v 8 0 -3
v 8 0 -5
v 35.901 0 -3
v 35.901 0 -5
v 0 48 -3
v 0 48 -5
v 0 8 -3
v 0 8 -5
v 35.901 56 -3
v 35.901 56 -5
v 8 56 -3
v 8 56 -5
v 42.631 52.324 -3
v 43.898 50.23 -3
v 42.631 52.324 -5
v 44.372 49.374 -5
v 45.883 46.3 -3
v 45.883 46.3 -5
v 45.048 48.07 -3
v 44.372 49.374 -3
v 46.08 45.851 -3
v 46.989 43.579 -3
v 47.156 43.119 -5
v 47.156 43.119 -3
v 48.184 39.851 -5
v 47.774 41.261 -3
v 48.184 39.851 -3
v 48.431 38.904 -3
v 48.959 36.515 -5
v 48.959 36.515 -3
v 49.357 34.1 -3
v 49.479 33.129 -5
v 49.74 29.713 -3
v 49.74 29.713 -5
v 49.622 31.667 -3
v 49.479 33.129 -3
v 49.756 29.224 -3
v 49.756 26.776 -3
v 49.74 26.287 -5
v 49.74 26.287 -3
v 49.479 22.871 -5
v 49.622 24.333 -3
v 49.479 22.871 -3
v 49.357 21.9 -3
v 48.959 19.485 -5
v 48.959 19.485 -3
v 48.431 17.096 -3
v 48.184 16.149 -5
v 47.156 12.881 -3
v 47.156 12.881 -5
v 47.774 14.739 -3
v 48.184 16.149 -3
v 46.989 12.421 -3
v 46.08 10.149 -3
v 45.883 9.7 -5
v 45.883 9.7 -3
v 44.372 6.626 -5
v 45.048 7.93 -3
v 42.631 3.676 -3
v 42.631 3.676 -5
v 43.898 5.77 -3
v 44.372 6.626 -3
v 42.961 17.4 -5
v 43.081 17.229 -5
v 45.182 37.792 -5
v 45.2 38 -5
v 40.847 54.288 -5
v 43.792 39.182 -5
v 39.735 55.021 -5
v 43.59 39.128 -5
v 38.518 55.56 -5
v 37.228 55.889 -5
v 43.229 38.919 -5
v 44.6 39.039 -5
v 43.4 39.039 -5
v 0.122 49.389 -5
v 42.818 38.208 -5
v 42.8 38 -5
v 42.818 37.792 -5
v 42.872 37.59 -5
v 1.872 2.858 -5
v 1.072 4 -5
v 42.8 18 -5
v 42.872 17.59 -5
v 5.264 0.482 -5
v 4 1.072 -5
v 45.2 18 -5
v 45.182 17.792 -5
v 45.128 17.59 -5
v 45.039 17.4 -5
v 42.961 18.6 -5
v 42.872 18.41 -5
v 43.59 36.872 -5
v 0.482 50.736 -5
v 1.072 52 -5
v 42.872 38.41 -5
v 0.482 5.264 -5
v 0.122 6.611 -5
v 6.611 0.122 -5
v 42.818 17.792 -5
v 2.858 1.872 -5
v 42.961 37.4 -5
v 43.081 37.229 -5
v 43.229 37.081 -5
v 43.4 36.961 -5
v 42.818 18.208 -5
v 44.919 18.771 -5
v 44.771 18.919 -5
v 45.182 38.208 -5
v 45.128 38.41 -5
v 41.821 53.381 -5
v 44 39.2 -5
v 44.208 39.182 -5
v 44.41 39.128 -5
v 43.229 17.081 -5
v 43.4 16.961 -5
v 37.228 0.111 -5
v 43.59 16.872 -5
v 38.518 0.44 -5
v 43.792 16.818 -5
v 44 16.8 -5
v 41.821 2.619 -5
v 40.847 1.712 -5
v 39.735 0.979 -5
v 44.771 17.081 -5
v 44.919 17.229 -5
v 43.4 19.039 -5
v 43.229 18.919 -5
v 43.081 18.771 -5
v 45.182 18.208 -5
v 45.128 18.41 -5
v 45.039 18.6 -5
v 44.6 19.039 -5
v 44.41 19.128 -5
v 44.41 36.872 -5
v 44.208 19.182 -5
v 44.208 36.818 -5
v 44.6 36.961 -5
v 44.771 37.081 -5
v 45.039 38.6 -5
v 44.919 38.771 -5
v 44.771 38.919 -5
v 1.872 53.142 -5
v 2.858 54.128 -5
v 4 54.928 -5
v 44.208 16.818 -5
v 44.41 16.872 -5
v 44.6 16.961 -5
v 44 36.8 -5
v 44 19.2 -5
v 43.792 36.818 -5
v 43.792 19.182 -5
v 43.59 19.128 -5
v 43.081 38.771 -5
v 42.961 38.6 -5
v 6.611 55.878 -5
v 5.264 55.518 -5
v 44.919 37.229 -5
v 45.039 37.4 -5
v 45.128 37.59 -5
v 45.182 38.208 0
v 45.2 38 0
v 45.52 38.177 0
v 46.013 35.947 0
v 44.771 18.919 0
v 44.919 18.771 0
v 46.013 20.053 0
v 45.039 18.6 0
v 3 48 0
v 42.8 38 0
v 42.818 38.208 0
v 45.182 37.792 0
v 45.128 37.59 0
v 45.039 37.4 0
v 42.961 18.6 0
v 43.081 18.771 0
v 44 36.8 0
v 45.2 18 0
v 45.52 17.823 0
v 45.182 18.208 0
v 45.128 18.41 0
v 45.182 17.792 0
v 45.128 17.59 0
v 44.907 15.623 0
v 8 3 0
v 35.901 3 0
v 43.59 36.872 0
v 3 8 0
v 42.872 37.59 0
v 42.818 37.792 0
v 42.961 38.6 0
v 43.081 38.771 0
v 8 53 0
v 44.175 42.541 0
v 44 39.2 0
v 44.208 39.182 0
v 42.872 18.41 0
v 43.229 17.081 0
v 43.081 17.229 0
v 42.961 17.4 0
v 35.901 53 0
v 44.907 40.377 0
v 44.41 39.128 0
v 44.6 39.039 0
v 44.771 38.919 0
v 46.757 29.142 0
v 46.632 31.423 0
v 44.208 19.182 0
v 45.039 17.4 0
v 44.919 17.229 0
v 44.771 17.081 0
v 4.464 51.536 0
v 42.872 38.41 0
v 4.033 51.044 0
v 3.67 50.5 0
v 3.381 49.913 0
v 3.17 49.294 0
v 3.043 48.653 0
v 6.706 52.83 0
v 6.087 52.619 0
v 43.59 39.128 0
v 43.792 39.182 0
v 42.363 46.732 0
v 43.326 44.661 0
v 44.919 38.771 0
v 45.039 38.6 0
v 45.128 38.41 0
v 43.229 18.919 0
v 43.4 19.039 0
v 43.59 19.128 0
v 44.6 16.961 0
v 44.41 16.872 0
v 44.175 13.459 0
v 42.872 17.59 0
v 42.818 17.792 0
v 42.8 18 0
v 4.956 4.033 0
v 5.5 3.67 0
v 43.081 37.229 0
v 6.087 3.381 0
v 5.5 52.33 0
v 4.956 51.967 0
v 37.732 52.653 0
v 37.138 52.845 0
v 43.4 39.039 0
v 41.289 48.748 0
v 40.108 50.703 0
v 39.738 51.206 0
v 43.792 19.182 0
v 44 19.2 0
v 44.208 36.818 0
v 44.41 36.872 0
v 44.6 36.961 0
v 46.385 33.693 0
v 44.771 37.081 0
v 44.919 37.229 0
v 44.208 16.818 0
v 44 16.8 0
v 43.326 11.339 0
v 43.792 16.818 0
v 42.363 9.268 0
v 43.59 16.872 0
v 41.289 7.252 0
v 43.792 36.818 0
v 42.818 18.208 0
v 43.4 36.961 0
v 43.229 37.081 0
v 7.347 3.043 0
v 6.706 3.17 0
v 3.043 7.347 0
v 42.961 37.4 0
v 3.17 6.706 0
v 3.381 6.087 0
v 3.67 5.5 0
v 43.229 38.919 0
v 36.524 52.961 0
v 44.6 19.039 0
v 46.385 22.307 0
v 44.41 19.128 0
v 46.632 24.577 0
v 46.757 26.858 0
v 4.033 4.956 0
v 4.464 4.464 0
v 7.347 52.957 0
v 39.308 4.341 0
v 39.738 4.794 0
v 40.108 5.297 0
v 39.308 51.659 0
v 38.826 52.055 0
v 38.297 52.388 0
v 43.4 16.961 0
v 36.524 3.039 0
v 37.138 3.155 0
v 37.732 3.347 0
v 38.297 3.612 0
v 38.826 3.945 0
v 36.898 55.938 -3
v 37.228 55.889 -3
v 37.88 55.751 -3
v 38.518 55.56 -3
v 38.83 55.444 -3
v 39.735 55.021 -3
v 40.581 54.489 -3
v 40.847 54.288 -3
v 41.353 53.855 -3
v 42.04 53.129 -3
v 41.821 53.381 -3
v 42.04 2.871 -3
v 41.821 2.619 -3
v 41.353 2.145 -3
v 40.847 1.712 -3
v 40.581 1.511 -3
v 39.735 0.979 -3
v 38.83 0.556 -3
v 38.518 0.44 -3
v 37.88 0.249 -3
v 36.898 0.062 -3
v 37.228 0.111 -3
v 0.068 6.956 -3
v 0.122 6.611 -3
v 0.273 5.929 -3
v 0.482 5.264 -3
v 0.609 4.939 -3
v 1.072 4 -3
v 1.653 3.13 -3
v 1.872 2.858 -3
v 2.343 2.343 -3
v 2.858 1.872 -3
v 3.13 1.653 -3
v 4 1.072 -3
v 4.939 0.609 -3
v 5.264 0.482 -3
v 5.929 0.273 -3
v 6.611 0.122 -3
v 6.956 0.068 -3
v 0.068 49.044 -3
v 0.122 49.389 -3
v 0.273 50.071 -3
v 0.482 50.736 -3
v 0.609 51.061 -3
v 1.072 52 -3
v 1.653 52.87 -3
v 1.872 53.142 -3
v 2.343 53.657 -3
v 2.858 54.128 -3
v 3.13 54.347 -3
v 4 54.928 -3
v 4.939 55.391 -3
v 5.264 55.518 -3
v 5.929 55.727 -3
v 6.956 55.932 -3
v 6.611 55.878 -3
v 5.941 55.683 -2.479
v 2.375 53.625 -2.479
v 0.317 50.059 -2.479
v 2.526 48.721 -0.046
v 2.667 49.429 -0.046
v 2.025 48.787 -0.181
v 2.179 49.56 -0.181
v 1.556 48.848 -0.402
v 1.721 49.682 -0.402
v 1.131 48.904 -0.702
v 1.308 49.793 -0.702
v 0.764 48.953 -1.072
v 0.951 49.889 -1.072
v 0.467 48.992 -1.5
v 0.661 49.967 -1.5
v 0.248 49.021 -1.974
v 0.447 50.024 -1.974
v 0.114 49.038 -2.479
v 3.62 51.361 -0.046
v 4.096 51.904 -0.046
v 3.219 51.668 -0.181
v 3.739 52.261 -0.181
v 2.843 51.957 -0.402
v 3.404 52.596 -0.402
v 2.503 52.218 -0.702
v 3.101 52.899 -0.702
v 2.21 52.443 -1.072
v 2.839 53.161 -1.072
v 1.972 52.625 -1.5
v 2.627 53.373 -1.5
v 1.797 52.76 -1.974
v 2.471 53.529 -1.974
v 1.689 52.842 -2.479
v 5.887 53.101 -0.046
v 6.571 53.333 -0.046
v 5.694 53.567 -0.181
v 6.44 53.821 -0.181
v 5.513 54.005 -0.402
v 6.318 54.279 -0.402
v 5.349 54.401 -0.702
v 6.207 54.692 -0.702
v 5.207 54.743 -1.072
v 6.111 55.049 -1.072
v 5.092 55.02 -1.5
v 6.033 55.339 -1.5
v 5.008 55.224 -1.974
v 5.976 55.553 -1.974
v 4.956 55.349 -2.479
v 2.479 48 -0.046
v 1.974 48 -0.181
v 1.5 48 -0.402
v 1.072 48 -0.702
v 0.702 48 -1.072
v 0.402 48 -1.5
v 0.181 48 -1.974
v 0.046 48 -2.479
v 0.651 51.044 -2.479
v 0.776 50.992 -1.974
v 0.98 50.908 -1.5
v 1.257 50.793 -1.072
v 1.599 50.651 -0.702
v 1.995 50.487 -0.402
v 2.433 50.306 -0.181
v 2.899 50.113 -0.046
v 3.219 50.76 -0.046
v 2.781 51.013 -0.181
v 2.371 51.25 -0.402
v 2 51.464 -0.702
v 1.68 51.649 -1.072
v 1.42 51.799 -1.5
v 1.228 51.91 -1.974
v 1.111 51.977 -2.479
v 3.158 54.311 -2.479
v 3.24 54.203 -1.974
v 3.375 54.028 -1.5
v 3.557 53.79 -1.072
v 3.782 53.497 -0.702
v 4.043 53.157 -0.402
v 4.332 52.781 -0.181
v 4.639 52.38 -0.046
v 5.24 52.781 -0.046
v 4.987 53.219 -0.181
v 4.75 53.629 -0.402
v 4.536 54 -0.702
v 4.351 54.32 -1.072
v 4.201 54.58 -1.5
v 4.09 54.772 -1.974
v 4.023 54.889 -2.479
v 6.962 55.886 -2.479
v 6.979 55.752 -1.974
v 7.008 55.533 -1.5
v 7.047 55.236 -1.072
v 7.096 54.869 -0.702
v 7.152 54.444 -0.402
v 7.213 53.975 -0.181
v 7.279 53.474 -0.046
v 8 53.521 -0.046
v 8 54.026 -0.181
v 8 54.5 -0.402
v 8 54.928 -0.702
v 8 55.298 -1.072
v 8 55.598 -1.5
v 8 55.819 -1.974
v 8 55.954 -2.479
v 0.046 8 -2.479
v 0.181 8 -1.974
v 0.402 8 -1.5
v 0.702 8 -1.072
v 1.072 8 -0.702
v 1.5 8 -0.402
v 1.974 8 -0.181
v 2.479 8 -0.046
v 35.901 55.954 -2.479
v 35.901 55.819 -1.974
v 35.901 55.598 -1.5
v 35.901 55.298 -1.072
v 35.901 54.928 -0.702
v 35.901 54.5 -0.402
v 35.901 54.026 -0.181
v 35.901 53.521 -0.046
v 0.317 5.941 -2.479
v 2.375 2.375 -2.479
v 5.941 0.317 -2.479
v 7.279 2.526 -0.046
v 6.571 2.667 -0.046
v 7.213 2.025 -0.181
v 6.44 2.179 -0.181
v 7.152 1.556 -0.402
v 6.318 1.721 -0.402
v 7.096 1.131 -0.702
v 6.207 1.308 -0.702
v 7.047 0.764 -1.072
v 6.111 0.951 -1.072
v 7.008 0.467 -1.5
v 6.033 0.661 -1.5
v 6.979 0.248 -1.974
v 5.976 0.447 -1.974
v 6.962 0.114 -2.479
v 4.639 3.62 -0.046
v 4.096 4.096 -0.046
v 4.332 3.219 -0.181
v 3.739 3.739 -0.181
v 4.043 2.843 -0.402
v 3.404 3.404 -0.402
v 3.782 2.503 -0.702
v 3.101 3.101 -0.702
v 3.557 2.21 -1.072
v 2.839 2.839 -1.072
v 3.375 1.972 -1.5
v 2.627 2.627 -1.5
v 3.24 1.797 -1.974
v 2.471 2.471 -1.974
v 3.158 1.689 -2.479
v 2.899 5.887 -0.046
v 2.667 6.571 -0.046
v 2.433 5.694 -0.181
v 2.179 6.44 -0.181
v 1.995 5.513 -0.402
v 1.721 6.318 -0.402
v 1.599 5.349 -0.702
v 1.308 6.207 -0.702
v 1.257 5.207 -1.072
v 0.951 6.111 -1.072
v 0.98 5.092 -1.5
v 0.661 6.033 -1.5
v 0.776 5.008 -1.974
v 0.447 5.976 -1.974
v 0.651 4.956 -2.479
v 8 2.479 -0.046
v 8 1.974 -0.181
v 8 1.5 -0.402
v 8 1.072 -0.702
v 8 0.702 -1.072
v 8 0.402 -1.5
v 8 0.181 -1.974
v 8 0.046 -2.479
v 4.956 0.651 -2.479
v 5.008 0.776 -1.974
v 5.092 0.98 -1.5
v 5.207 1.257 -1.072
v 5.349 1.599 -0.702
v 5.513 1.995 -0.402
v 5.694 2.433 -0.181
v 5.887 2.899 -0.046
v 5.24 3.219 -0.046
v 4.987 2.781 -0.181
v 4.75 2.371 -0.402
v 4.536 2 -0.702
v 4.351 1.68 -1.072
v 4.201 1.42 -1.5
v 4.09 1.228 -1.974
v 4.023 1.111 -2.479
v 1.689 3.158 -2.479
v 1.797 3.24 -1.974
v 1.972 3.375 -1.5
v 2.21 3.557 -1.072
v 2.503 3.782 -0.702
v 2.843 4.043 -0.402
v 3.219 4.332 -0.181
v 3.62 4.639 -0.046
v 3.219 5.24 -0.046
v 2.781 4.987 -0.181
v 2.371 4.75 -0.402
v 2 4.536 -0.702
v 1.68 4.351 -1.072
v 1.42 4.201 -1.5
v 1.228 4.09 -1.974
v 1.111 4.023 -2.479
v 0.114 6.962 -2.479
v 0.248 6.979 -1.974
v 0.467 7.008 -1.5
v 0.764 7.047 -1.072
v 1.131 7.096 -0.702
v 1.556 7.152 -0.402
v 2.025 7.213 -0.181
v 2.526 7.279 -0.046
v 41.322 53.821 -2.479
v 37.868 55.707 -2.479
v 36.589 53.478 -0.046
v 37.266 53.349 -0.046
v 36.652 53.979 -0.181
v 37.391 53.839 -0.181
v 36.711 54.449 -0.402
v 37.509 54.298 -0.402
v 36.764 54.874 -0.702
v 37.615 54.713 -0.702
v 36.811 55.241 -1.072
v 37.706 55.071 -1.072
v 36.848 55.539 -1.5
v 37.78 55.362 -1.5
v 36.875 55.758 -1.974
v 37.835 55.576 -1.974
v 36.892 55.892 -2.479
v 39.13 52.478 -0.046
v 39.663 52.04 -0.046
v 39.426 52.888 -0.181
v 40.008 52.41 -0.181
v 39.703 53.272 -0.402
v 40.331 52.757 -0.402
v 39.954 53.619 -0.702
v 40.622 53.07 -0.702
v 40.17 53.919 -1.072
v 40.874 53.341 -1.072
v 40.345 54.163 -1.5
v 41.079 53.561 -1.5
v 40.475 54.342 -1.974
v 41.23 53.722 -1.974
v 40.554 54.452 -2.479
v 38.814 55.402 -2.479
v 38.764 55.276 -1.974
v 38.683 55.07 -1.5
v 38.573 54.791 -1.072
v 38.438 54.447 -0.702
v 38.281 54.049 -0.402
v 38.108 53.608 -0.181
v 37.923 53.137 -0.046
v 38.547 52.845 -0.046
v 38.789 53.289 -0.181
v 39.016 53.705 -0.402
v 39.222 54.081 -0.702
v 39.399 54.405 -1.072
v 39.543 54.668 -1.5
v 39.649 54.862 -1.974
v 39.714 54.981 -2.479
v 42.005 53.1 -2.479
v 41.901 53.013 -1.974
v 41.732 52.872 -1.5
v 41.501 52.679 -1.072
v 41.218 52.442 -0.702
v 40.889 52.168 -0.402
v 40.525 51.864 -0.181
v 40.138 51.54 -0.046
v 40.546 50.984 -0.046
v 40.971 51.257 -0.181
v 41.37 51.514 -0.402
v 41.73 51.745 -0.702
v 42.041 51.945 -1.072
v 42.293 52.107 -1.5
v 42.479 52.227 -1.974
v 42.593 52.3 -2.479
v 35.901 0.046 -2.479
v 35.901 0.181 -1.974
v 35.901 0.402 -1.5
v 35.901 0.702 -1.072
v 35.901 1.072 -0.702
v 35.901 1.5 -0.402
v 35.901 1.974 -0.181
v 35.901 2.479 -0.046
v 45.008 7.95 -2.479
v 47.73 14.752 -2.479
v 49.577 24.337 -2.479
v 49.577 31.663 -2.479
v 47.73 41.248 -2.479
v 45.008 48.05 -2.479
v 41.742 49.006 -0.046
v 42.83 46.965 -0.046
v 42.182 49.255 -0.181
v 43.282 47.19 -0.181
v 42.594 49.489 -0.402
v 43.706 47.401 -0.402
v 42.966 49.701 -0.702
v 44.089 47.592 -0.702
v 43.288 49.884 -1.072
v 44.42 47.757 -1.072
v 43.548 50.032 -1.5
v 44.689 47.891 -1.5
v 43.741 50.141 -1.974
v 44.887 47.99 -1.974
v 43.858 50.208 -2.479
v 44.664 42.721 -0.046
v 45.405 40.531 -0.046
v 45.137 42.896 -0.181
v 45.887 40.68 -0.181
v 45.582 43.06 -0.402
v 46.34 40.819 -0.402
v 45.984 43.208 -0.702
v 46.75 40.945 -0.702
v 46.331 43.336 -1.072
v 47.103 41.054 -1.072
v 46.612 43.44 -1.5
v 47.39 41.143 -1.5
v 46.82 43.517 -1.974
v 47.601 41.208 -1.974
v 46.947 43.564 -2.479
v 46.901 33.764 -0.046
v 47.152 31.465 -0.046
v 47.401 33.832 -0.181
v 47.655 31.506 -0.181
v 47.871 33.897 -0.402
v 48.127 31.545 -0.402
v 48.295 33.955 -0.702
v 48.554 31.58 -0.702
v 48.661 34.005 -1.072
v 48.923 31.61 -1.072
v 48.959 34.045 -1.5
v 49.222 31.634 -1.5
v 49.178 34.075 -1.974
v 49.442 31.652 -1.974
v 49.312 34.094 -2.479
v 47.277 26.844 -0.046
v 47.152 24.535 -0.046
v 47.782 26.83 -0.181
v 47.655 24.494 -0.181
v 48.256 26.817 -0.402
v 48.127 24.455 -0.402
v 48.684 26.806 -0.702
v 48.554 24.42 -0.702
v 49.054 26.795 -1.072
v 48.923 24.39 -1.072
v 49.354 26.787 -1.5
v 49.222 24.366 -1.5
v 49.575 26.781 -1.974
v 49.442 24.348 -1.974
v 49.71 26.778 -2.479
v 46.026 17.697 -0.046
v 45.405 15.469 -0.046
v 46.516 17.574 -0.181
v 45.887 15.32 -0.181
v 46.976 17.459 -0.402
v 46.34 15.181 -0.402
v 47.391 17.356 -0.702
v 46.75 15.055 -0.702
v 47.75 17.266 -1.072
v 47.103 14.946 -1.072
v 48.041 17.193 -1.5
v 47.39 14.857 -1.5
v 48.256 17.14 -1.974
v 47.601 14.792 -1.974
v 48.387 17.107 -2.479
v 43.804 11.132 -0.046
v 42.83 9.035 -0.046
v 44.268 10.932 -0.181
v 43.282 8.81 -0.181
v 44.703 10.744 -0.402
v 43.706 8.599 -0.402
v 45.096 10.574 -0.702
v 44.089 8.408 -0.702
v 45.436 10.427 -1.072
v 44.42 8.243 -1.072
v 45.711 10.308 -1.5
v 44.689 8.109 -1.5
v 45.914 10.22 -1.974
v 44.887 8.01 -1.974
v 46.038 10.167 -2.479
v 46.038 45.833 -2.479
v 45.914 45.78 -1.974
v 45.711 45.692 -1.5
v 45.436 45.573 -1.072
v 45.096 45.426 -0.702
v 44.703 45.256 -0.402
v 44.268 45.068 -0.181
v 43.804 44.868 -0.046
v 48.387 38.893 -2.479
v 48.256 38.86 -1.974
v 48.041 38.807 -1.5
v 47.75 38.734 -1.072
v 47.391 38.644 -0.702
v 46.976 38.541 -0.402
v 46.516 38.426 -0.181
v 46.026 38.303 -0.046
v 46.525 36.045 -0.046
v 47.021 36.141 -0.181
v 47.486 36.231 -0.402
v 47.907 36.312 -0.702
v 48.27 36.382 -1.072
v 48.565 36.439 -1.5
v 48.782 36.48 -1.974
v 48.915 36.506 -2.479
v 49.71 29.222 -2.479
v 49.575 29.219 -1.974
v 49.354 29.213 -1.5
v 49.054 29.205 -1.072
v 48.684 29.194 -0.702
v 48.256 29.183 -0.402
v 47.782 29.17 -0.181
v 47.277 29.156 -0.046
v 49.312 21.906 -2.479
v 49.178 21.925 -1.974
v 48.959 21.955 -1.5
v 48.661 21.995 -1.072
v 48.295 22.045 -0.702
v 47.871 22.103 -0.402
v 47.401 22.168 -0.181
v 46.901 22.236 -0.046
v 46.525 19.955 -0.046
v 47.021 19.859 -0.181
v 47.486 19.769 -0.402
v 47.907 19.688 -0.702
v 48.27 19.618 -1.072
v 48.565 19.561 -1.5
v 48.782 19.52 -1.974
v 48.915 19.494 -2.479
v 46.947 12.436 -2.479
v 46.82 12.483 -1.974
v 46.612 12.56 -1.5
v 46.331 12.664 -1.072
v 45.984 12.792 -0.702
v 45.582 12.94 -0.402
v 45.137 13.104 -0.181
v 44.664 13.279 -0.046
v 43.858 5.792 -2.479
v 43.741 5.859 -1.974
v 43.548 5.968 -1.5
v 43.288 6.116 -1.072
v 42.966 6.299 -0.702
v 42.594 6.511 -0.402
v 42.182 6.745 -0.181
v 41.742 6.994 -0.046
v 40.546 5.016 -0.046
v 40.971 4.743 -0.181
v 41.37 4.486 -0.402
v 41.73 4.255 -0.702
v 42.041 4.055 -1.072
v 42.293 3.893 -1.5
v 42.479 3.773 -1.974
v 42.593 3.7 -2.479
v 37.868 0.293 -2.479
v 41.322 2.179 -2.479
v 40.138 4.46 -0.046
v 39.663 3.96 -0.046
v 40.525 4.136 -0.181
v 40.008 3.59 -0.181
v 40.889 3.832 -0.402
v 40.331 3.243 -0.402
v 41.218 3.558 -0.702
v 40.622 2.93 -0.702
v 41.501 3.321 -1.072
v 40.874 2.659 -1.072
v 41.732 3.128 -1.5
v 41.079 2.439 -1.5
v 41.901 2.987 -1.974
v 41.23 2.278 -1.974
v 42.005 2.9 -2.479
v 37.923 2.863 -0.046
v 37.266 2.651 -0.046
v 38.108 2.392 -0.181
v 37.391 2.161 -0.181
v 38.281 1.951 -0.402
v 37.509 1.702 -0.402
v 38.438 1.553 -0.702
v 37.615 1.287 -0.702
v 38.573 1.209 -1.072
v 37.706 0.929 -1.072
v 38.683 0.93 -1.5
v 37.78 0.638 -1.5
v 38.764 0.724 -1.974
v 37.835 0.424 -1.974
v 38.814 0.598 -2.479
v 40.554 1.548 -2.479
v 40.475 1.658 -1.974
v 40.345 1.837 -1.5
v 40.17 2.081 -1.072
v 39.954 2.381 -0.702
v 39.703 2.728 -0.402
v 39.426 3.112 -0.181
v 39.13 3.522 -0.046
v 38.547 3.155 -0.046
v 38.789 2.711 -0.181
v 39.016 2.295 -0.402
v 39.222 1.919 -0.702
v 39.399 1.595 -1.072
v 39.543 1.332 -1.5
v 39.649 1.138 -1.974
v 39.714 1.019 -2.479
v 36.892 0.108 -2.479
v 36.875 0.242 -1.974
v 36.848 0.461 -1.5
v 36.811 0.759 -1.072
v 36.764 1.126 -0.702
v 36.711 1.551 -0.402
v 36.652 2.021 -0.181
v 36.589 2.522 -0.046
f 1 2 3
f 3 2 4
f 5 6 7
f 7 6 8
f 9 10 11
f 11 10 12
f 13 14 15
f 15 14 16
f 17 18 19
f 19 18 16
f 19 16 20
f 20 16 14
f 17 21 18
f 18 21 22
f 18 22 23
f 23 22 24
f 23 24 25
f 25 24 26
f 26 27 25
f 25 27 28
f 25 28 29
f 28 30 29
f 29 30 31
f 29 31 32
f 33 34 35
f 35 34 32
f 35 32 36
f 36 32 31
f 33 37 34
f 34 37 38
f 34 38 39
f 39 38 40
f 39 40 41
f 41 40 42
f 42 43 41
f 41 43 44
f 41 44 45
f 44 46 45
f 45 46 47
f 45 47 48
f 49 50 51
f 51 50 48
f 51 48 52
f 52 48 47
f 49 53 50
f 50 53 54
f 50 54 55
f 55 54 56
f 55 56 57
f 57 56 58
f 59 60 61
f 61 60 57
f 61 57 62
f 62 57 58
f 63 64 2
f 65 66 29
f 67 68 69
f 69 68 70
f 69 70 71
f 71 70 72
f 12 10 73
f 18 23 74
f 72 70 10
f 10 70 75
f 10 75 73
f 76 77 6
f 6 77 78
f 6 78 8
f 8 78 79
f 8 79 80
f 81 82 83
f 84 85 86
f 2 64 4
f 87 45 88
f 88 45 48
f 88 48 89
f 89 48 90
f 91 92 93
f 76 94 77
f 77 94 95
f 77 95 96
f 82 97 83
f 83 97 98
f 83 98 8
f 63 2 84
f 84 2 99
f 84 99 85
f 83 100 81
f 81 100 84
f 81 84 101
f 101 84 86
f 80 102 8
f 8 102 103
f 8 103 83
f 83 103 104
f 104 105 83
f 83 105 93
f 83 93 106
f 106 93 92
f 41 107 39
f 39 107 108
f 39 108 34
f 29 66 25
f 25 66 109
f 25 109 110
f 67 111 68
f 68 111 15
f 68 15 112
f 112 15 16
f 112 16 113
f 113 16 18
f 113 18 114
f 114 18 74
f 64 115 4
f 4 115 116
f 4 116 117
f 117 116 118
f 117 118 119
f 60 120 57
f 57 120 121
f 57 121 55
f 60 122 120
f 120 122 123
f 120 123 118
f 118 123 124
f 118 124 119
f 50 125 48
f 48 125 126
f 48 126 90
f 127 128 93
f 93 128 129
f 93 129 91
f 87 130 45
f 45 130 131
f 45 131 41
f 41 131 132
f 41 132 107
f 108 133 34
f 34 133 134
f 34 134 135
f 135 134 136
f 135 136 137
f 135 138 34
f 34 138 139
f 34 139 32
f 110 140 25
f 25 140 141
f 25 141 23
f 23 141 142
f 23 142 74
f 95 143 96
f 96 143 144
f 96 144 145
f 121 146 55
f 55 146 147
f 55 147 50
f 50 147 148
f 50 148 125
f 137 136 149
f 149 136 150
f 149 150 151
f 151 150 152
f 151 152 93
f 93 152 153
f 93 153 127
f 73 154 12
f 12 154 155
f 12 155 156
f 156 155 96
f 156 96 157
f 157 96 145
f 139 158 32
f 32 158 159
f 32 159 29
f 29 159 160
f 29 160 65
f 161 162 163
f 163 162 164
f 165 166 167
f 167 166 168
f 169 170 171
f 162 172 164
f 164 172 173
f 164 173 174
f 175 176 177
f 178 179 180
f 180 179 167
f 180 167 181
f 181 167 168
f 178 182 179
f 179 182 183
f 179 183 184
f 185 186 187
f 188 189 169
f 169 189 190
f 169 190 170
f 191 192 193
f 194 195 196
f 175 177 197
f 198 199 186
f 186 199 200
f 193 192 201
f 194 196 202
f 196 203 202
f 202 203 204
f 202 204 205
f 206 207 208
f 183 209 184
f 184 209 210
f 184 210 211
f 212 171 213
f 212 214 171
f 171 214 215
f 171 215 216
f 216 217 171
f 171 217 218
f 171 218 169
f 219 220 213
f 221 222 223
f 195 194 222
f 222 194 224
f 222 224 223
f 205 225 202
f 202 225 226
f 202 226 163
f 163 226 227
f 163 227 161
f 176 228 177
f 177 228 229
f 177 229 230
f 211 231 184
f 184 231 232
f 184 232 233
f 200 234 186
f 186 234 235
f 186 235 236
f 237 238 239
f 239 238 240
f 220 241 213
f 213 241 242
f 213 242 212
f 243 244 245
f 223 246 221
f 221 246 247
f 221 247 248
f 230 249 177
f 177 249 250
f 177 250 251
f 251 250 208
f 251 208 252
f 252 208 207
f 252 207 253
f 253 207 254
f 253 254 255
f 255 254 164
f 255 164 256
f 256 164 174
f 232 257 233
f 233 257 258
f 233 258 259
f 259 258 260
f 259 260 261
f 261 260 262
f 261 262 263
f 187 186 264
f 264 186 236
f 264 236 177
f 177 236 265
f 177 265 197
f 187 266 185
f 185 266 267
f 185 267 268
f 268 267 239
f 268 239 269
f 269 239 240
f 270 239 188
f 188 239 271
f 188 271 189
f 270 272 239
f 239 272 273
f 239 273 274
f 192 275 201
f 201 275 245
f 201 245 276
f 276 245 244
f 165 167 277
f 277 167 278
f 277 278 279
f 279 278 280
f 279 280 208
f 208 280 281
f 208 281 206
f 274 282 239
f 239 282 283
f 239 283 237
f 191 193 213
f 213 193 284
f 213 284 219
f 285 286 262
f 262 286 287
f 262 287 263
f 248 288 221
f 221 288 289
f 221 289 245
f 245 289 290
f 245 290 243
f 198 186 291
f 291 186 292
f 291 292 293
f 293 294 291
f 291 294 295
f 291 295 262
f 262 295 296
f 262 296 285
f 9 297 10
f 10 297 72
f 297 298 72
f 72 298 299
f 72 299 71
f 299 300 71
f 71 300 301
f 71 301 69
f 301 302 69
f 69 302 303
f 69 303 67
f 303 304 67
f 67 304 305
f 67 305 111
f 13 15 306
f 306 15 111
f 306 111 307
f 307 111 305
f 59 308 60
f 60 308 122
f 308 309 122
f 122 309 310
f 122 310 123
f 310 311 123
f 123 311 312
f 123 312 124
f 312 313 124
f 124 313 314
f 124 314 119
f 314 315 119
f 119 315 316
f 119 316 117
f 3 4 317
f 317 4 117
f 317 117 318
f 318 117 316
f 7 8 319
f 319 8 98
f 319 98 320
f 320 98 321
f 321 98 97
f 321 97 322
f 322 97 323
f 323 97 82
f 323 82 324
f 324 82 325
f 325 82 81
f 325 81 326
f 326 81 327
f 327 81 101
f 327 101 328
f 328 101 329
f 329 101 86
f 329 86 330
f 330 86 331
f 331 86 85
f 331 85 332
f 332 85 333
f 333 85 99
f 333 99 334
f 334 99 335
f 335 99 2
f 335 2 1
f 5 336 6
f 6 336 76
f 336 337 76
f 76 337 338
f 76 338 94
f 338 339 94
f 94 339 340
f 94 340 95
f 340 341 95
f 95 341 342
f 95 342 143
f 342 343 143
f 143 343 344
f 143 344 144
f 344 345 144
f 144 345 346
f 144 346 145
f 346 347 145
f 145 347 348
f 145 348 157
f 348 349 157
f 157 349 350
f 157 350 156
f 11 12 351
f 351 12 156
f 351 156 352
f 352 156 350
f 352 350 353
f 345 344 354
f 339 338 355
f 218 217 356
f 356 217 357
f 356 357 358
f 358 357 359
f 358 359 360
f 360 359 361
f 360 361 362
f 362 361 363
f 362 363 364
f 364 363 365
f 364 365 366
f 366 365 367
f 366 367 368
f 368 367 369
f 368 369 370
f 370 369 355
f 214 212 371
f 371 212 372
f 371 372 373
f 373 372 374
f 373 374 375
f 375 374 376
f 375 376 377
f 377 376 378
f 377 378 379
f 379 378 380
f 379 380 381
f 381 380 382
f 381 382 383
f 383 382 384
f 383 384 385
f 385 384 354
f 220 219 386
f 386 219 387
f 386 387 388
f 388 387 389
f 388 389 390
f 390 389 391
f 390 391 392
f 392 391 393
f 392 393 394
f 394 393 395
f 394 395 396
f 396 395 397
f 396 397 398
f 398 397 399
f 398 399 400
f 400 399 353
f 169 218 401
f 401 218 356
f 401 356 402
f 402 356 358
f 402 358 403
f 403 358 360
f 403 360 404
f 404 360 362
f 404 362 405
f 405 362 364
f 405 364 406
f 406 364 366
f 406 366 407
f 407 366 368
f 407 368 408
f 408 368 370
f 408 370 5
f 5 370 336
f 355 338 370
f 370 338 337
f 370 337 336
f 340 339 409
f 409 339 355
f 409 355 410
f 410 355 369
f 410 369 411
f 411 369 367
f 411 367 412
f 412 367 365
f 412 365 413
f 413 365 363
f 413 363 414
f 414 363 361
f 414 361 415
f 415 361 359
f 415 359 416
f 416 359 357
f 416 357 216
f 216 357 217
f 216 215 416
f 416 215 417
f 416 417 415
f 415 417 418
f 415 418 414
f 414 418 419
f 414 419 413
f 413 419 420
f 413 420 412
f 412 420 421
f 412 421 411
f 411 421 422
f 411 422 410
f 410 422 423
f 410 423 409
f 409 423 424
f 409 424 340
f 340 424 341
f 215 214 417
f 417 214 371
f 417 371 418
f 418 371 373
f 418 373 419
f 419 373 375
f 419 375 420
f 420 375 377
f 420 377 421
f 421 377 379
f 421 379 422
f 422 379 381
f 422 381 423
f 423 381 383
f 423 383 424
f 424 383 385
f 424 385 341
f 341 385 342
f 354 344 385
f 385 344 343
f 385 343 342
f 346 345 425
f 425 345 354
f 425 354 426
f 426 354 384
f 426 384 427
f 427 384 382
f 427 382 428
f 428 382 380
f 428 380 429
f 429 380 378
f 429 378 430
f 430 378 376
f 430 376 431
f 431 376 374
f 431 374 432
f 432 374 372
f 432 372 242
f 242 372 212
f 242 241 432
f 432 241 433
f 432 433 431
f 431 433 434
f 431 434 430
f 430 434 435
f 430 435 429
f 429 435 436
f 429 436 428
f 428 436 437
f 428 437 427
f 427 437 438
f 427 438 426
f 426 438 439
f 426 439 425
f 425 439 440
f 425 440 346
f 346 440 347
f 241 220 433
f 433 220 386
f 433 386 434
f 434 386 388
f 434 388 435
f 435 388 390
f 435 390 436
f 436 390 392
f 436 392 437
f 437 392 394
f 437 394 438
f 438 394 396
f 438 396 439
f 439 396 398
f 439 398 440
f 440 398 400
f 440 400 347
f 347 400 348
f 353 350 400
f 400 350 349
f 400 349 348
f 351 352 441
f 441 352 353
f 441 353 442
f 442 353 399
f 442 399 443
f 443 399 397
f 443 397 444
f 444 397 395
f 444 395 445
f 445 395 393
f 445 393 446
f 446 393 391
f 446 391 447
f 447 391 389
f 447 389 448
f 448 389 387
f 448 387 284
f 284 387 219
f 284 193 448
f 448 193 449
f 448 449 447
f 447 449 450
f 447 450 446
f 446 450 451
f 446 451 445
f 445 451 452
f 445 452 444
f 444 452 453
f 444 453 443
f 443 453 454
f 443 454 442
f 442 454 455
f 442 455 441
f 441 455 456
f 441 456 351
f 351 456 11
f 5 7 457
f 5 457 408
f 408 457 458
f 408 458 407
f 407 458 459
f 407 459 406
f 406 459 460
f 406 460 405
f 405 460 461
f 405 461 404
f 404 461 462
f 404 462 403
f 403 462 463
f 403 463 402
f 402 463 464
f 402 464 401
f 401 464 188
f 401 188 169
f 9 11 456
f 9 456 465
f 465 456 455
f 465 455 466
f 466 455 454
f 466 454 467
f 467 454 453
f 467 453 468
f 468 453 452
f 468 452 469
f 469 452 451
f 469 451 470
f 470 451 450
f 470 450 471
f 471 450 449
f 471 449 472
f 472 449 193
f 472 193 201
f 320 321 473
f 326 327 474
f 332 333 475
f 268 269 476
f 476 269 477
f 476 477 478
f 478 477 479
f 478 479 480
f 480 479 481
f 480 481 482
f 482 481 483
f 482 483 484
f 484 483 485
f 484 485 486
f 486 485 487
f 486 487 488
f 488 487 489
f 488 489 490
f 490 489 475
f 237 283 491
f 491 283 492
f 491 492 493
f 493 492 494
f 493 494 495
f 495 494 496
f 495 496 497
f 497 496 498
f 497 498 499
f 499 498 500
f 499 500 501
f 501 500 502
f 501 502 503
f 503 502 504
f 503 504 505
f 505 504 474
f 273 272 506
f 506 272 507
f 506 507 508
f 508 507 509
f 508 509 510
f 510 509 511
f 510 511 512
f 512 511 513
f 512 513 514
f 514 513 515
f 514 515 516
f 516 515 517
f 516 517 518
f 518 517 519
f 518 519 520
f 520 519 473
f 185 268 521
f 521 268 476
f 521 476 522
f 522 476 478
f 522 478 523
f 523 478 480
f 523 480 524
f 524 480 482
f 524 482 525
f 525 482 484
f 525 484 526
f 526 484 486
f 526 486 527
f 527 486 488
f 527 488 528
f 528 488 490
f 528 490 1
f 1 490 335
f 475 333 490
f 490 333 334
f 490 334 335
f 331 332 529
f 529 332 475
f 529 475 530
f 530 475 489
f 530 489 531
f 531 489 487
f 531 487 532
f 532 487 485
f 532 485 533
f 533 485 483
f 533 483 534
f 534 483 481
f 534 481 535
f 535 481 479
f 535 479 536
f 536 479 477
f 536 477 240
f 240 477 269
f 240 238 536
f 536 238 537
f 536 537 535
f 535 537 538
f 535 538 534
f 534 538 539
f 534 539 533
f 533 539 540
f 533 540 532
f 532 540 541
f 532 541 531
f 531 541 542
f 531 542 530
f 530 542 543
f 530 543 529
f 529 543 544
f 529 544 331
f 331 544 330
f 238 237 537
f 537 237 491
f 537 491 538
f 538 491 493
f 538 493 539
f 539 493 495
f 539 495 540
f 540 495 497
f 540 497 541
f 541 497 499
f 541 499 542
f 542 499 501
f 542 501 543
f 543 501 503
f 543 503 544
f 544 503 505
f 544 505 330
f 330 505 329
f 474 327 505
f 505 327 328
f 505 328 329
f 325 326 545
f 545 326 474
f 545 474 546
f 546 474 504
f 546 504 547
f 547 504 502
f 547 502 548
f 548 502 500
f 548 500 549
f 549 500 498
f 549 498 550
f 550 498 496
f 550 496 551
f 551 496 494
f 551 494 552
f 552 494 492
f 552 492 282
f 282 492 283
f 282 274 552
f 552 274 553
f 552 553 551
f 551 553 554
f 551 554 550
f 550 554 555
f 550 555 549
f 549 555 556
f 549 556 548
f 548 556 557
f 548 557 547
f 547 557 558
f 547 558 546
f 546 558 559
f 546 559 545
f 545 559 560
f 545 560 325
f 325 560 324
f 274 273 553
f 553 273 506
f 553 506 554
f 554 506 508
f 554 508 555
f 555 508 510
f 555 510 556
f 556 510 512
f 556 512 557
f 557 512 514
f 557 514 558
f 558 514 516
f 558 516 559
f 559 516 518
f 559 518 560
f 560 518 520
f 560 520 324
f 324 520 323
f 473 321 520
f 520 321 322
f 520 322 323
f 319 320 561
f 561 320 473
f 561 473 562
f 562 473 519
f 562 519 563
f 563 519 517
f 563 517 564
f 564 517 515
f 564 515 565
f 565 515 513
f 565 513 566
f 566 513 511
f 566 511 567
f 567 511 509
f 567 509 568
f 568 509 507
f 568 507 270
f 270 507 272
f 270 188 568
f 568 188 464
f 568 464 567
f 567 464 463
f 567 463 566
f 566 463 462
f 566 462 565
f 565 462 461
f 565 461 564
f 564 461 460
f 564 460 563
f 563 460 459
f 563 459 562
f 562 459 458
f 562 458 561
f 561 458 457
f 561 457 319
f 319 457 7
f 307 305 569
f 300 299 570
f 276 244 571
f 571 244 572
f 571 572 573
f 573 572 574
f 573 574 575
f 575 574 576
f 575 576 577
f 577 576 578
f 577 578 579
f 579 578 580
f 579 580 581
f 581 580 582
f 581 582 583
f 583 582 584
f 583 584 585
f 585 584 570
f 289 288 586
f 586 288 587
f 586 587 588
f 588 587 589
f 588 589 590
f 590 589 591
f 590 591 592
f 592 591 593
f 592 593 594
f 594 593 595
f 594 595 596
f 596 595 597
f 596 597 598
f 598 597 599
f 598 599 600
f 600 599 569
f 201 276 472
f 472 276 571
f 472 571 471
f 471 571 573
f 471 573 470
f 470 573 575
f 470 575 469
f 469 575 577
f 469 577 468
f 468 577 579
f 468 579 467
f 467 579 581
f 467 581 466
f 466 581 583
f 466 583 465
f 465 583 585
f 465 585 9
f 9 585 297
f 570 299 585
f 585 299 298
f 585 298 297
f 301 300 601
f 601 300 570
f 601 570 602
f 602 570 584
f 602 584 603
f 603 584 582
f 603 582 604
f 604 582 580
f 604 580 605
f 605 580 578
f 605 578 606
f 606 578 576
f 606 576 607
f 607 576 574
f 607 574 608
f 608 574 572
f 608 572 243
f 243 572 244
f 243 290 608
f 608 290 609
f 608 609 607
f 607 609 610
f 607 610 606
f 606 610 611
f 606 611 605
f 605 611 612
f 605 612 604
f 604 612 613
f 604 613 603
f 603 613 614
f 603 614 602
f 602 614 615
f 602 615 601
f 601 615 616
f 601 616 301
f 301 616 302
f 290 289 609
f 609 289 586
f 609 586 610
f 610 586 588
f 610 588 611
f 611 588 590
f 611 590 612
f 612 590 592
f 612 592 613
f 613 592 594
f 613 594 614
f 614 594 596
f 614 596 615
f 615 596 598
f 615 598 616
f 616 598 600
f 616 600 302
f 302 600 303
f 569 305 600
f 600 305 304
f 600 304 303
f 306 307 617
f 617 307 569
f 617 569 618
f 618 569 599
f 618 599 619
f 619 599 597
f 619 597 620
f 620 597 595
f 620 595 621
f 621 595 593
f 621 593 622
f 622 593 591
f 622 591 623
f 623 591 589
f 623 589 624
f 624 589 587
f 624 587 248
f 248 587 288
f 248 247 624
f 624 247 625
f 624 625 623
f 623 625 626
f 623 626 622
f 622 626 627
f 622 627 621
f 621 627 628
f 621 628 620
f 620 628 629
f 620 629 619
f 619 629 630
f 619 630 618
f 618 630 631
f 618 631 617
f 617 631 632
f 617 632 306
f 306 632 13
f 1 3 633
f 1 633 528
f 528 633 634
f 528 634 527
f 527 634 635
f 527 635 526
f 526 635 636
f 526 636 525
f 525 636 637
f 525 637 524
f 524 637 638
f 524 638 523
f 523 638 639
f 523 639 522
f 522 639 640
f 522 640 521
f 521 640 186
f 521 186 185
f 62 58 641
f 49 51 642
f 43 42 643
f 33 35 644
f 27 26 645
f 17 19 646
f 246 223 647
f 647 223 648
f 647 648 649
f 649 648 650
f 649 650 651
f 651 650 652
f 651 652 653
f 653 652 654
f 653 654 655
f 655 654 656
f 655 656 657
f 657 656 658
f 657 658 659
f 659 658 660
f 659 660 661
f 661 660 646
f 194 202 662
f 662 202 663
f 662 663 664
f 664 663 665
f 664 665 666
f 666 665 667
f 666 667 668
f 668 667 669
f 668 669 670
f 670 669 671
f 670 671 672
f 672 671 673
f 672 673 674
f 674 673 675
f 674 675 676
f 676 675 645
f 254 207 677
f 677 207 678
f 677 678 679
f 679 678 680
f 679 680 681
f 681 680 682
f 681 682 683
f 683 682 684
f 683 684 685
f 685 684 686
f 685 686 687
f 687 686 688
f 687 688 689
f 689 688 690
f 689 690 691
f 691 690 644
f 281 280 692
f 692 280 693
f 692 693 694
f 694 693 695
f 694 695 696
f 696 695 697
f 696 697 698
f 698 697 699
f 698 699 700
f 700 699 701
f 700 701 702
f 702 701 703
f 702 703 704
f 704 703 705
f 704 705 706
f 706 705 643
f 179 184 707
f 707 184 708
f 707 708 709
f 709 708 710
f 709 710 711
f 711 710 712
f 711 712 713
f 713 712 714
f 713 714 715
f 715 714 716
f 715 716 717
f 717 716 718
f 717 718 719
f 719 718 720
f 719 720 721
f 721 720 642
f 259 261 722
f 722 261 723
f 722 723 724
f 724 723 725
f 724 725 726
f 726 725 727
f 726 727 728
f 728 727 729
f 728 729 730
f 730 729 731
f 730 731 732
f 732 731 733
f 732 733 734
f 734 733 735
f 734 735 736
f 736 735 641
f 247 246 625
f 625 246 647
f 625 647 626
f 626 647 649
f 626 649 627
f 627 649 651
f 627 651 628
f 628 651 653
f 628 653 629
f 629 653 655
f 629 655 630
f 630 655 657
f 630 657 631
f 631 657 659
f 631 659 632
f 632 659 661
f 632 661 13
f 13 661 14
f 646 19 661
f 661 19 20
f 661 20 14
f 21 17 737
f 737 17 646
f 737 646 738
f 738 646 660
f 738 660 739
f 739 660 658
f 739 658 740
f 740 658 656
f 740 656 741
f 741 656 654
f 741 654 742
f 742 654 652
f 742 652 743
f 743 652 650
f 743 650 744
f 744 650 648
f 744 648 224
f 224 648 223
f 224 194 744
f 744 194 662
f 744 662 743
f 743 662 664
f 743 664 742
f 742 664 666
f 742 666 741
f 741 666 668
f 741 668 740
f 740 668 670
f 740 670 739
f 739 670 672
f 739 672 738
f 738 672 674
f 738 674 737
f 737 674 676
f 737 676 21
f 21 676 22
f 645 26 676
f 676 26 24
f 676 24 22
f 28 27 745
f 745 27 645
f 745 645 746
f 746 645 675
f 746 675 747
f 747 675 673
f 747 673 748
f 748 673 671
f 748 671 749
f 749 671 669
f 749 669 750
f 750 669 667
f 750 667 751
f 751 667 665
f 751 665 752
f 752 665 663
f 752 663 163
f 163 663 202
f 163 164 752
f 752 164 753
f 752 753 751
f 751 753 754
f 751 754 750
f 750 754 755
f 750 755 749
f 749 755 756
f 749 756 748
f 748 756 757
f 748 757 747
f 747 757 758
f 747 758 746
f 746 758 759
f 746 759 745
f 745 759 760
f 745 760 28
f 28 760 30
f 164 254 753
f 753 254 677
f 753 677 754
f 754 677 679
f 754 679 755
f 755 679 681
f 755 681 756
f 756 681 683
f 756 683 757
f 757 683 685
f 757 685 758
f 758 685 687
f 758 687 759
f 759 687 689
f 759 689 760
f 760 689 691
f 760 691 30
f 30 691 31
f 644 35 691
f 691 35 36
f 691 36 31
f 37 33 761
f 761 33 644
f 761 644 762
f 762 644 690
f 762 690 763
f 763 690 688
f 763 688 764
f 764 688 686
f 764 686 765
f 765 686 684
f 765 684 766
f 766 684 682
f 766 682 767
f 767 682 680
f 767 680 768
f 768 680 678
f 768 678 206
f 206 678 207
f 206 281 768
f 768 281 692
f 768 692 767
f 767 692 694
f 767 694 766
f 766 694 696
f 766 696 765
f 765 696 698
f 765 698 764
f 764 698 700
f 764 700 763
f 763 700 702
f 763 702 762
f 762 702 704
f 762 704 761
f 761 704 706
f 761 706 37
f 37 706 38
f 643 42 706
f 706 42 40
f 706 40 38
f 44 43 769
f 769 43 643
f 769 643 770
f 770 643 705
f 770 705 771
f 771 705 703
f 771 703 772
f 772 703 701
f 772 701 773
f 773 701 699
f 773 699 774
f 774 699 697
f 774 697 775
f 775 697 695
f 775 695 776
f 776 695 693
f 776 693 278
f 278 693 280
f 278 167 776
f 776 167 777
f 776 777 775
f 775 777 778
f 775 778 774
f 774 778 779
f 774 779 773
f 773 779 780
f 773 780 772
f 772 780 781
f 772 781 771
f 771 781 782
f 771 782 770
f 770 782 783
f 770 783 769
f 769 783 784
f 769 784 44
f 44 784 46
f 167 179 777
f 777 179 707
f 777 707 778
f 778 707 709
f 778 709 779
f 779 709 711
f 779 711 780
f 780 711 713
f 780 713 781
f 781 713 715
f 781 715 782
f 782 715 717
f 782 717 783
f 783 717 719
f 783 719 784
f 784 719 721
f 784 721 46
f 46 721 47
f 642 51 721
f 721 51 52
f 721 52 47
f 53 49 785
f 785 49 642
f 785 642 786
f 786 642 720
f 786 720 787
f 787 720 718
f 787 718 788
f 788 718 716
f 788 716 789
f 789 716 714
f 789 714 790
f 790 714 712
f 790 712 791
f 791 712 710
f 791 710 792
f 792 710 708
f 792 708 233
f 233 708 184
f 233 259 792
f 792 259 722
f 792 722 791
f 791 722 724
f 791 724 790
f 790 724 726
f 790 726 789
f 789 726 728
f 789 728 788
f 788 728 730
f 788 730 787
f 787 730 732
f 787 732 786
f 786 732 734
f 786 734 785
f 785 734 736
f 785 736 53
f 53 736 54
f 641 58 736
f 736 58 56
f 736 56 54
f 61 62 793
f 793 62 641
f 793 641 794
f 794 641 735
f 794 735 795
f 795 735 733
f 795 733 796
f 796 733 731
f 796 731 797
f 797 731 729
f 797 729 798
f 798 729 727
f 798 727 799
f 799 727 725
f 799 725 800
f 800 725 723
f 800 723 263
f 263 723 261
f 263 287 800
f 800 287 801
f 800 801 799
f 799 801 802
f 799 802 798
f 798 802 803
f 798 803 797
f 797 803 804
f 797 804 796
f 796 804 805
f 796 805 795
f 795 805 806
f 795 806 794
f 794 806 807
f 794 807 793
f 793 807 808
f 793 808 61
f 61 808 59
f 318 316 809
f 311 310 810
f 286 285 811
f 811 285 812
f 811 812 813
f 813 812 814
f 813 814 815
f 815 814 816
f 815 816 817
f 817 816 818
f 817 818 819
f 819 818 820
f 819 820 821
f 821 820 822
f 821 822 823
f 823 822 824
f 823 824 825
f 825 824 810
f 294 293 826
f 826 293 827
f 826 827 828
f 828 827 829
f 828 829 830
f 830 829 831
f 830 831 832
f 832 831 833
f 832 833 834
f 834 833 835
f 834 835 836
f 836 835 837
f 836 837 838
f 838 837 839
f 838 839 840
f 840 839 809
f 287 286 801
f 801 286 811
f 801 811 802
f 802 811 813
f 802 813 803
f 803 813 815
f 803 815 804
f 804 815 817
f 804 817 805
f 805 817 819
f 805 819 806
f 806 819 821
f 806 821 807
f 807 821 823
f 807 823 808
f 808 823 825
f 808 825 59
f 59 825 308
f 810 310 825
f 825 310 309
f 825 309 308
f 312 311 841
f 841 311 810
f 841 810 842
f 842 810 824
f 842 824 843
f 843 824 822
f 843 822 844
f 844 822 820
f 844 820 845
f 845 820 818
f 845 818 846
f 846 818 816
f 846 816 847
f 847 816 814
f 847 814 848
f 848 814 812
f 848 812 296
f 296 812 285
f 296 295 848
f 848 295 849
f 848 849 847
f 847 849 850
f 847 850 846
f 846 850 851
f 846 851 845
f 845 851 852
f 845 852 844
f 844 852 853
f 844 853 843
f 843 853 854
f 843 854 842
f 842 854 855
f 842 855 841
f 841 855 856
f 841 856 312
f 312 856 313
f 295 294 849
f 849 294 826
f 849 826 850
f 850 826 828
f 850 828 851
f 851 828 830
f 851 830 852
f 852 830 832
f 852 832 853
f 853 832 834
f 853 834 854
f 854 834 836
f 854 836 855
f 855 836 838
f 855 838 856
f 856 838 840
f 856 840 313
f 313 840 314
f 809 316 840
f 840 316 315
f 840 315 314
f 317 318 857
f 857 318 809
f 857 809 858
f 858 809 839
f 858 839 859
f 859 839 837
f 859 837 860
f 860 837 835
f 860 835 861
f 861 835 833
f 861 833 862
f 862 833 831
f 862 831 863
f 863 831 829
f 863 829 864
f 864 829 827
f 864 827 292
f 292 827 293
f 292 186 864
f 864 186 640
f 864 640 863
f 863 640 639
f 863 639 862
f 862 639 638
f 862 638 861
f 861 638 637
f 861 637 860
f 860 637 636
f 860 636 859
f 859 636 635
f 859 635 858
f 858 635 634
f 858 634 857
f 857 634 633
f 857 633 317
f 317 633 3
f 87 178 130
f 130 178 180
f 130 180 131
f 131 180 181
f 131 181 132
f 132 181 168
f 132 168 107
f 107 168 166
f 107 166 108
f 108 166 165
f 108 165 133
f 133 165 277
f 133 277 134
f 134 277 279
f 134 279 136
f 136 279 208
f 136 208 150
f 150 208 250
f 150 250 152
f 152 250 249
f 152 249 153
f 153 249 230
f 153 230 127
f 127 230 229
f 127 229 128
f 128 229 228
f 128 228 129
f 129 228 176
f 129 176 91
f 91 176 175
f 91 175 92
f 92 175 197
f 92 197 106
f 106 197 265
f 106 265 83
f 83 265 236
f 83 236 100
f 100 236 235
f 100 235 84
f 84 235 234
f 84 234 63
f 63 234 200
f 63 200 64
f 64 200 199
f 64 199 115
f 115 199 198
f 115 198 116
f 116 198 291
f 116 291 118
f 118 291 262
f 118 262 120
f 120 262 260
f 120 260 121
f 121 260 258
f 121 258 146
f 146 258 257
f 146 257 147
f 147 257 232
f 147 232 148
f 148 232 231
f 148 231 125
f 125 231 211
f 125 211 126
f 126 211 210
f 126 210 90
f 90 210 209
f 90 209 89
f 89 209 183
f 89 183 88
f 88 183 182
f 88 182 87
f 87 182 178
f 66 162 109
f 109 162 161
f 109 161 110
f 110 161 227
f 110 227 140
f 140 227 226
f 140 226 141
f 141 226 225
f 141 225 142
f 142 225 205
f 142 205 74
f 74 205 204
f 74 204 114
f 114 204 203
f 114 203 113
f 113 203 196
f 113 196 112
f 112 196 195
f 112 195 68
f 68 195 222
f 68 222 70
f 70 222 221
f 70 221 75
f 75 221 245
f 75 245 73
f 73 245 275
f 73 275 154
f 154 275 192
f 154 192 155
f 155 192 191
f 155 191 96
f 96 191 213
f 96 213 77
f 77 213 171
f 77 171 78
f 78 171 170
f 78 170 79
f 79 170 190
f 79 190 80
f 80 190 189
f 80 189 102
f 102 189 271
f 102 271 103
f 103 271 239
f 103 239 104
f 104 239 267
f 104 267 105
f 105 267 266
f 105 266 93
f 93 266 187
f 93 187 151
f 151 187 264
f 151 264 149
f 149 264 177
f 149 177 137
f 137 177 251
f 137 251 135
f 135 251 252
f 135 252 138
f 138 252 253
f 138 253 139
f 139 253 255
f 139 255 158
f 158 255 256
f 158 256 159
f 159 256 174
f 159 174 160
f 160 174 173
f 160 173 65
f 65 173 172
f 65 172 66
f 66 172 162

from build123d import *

# Parameters (mm, degrees)
EXTRUDE_1_DEPTH       = 5
FILLET_3_R            = 8
FILLET_4_R            = 3
HOLE_WIZARD_M32_D     = 2.4
HOLE_WIZARD_M32_DEPTH = 9.278967257
HOLE_WIZARD_M32_TIP   = 0.721032743


with BuildPart() as part:
    # Эскиз1 → Бобышка-Вытянуть1 (new body)
    with BuildSketch(Plane.XY):
        with BuildLine():
            Line((0, 0), (40, 0))
            ThreePointArc((40, 0), (49.772170092, 28), (40, 56))
            Line((40, 56), (0, 56))
            Line((0, 56), (0, 0))
        make_face()
    extrude(amount=-EXTRUDE_1_DEPTH)

    # Скругление3
    fillet_3_edges = [part.edges().sort_by_distance(p)[0] for p in [
        (0, 0, -2.5),
        (0, 56, -2.5),
        (40, 56, -2.5),
        (40, 0, -2.5),
    ]]
    fillet(fillet_3_edges, radius=FILLET_3_R)

    # Скругление4
    fillet_4_edges = [part.edges().sort_by_distance(p)[0] for p in [
        (49.772170092, 28, 0),
        (21.950467462, 0, 0),
        (21.950467462, 56, 0),
        (0, 28, 0),
        (2.343145751, 53.656854249, 0),
        (2.343145751, 2.343145751, 0),
        (39.735345271, 0.978796592, 0),
        (39.735345271, 55.021203408, 0),
    ]]
    fillet(fillet_4_edges, radius=FILLET_4_R)

    # Отверстие с зазором M32
    with Locations(Plane.XY):
        with Locations((44, 38), (44, 18)):
            Hole(HOLE_WIZARD_M32_D / 2, depth=HOLE_WIZARD_M32_DEPTH)
            with Locations((0, 0, -(HOLE_WIZARD_M32_DEPTH + HOLE_WIZARD_M32_TIP / 2))):  # 118° drill point
                Cone(0, HOLE_WIZARD_M32_D / 2, HOLE_WIZARD_M32_TIP, mode=Mode.SUBTRACT)


solid = part.part
